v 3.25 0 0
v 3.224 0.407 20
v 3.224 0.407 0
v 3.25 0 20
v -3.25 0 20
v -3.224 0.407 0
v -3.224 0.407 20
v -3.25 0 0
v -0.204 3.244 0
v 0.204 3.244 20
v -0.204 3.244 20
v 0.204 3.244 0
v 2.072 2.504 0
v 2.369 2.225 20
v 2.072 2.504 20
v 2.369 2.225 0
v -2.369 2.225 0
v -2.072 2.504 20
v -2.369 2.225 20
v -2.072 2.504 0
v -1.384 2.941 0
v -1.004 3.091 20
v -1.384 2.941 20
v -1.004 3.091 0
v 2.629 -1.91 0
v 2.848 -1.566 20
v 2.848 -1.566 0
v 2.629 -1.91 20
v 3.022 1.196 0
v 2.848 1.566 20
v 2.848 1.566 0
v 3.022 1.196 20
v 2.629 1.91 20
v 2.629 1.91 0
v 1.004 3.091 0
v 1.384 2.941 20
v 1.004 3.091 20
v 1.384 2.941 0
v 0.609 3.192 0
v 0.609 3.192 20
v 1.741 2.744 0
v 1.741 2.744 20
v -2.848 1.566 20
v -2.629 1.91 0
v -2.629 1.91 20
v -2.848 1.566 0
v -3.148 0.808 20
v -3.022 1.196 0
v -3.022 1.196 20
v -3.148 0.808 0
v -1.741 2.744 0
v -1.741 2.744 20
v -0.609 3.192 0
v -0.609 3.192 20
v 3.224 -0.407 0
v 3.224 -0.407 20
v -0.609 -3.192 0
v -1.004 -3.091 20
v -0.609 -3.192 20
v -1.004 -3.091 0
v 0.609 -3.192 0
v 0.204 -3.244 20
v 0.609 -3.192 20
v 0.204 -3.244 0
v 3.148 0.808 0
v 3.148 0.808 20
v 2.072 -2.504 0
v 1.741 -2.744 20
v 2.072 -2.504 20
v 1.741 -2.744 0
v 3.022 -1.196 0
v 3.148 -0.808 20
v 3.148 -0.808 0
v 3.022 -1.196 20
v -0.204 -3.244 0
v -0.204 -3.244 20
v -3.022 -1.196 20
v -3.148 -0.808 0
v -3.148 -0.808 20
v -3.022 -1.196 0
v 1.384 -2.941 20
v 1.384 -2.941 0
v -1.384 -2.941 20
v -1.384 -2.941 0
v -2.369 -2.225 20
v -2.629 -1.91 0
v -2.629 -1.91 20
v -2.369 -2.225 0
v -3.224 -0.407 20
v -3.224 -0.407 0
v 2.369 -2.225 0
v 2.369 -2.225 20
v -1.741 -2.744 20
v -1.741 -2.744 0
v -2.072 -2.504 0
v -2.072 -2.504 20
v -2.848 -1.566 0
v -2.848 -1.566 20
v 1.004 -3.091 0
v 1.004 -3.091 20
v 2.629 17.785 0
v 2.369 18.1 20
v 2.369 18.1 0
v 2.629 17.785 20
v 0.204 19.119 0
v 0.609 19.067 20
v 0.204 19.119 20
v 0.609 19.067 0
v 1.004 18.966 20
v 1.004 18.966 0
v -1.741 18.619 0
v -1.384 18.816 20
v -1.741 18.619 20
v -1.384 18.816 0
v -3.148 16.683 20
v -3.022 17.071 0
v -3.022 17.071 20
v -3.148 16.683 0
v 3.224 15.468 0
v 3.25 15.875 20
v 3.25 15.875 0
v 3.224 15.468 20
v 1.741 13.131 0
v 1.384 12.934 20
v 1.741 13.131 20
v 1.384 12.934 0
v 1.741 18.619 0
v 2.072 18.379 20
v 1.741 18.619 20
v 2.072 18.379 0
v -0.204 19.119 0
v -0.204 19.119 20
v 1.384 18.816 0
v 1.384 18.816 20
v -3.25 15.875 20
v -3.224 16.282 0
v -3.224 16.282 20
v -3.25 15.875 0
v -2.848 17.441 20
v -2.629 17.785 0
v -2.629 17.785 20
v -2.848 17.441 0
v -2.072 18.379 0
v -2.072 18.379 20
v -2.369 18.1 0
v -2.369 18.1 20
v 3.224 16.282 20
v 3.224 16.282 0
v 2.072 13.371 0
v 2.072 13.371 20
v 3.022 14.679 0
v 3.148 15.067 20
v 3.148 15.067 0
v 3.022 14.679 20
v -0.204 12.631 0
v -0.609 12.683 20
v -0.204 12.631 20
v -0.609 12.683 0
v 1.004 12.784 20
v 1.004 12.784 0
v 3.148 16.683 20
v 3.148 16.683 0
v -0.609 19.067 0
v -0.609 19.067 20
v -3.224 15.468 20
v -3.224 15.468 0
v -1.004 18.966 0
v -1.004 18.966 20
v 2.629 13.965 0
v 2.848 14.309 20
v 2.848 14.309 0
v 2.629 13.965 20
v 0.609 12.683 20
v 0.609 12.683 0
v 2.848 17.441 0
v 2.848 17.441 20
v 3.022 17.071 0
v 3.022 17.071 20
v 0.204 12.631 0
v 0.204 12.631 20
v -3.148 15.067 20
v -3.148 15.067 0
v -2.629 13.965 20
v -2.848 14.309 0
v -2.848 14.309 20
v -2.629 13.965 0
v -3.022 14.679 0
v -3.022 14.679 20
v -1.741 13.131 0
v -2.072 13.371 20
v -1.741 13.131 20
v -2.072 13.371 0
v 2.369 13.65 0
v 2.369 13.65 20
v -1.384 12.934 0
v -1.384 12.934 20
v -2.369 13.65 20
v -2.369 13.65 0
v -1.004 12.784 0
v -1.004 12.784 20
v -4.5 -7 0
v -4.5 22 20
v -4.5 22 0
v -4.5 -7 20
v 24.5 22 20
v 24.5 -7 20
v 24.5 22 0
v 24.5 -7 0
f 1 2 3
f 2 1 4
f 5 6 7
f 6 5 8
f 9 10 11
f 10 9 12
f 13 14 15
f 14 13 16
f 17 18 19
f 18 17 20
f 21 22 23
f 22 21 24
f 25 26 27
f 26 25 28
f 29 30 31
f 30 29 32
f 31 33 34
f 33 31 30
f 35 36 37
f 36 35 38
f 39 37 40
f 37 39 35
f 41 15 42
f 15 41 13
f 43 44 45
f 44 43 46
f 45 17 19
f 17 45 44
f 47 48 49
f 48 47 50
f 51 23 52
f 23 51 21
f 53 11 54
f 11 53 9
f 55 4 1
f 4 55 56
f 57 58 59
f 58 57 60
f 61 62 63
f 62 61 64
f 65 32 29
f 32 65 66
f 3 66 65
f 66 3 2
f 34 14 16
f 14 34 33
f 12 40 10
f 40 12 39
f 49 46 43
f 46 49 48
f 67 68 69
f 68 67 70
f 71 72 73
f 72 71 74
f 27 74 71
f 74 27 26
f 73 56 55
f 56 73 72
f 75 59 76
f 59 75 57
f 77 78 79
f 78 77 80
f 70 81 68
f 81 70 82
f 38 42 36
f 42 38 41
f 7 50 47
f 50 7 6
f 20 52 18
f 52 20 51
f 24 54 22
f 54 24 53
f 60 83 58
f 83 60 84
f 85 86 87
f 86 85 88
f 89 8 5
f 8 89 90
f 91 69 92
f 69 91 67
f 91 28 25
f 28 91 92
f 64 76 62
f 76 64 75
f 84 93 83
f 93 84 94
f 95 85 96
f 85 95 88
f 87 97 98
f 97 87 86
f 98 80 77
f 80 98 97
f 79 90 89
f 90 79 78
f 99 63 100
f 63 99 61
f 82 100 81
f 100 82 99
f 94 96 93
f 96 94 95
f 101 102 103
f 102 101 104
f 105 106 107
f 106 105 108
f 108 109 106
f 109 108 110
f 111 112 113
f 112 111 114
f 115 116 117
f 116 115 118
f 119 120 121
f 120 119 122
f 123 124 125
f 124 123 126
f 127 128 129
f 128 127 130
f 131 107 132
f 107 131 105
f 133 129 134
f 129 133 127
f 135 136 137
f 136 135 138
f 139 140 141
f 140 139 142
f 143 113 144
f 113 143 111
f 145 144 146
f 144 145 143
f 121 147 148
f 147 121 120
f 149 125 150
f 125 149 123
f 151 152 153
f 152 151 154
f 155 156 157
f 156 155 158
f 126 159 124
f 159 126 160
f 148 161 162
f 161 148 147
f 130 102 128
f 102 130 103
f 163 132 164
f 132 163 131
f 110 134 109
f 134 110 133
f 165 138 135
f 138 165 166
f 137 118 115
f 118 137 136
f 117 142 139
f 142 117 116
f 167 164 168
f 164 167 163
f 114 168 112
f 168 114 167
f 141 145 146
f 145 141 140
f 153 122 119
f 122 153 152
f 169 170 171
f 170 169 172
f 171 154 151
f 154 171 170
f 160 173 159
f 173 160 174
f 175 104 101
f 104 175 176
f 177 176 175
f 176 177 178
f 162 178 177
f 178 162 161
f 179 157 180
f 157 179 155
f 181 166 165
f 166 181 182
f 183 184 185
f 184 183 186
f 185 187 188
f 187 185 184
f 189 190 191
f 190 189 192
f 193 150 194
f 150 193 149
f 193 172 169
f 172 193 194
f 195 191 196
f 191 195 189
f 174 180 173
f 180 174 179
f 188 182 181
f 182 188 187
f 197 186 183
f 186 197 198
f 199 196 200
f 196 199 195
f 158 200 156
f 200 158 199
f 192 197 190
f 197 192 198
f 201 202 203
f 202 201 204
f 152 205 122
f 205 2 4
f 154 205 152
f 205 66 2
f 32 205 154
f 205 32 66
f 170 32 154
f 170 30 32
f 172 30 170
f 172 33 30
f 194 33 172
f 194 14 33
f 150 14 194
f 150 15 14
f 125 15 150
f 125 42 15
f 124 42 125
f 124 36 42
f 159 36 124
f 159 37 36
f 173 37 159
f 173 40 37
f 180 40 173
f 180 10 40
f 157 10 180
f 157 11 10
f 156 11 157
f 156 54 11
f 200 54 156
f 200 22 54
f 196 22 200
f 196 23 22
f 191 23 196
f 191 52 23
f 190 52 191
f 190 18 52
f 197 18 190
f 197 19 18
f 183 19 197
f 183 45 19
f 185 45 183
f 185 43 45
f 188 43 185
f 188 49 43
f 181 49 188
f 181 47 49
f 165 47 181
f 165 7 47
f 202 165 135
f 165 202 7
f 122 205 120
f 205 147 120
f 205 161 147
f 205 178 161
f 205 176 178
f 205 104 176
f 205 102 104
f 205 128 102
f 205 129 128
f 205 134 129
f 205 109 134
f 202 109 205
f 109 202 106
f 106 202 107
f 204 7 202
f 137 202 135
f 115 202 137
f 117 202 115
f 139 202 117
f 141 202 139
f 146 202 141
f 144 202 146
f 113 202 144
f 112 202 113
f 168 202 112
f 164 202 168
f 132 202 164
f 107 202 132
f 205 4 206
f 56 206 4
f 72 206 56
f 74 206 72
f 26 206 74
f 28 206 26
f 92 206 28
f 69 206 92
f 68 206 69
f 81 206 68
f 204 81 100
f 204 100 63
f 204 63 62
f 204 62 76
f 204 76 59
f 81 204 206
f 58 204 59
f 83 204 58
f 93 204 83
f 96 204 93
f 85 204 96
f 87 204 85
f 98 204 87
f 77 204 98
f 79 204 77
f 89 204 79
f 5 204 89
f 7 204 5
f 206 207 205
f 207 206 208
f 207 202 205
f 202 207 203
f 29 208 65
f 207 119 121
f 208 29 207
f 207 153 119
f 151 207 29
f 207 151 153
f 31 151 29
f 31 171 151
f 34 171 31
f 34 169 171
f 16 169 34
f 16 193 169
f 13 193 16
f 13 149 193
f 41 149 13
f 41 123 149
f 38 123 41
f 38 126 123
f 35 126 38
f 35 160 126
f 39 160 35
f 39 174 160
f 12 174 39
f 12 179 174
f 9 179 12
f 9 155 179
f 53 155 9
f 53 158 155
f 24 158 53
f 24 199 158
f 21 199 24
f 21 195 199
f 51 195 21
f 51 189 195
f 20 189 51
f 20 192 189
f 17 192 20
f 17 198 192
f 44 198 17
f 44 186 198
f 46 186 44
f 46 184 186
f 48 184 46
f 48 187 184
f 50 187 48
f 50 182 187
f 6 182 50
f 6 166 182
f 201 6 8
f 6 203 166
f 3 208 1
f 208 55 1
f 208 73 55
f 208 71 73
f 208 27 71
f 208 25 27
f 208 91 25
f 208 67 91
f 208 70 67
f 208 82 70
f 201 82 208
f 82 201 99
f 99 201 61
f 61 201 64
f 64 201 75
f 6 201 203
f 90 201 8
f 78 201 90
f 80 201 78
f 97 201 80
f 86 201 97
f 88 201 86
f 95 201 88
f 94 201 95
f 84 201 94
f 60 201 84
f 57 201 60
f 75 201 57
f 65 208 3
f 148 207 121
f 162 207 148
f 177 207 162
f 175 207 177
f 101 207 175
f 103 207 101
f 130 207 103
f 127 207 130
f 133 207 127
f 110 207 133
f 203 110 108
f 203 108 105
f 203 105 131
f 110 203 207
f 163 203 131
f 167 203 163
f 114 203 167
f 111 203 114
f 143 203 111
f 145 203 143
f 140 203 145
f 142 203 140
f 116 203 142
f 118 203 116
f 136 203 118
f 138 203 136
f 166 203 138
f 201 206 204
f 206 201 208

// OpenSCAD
$fn = 50;


difference() {
	union() {
		translate(v = [-4.5000000000, -7.0000000000, 0]) {
			cube(size = [29, 29, 20]);
		}
	}
	union() {
		#translate(v = [0, 0, -50.0000000000]) {
			cylinder(h = 100, r = 3.2500000000);
		}
		#translate(v = [0, 15.8750000000, -50.0000000000]) {
			cylinder(h = 100, r = 3.2500000000);
		}
	}
}
